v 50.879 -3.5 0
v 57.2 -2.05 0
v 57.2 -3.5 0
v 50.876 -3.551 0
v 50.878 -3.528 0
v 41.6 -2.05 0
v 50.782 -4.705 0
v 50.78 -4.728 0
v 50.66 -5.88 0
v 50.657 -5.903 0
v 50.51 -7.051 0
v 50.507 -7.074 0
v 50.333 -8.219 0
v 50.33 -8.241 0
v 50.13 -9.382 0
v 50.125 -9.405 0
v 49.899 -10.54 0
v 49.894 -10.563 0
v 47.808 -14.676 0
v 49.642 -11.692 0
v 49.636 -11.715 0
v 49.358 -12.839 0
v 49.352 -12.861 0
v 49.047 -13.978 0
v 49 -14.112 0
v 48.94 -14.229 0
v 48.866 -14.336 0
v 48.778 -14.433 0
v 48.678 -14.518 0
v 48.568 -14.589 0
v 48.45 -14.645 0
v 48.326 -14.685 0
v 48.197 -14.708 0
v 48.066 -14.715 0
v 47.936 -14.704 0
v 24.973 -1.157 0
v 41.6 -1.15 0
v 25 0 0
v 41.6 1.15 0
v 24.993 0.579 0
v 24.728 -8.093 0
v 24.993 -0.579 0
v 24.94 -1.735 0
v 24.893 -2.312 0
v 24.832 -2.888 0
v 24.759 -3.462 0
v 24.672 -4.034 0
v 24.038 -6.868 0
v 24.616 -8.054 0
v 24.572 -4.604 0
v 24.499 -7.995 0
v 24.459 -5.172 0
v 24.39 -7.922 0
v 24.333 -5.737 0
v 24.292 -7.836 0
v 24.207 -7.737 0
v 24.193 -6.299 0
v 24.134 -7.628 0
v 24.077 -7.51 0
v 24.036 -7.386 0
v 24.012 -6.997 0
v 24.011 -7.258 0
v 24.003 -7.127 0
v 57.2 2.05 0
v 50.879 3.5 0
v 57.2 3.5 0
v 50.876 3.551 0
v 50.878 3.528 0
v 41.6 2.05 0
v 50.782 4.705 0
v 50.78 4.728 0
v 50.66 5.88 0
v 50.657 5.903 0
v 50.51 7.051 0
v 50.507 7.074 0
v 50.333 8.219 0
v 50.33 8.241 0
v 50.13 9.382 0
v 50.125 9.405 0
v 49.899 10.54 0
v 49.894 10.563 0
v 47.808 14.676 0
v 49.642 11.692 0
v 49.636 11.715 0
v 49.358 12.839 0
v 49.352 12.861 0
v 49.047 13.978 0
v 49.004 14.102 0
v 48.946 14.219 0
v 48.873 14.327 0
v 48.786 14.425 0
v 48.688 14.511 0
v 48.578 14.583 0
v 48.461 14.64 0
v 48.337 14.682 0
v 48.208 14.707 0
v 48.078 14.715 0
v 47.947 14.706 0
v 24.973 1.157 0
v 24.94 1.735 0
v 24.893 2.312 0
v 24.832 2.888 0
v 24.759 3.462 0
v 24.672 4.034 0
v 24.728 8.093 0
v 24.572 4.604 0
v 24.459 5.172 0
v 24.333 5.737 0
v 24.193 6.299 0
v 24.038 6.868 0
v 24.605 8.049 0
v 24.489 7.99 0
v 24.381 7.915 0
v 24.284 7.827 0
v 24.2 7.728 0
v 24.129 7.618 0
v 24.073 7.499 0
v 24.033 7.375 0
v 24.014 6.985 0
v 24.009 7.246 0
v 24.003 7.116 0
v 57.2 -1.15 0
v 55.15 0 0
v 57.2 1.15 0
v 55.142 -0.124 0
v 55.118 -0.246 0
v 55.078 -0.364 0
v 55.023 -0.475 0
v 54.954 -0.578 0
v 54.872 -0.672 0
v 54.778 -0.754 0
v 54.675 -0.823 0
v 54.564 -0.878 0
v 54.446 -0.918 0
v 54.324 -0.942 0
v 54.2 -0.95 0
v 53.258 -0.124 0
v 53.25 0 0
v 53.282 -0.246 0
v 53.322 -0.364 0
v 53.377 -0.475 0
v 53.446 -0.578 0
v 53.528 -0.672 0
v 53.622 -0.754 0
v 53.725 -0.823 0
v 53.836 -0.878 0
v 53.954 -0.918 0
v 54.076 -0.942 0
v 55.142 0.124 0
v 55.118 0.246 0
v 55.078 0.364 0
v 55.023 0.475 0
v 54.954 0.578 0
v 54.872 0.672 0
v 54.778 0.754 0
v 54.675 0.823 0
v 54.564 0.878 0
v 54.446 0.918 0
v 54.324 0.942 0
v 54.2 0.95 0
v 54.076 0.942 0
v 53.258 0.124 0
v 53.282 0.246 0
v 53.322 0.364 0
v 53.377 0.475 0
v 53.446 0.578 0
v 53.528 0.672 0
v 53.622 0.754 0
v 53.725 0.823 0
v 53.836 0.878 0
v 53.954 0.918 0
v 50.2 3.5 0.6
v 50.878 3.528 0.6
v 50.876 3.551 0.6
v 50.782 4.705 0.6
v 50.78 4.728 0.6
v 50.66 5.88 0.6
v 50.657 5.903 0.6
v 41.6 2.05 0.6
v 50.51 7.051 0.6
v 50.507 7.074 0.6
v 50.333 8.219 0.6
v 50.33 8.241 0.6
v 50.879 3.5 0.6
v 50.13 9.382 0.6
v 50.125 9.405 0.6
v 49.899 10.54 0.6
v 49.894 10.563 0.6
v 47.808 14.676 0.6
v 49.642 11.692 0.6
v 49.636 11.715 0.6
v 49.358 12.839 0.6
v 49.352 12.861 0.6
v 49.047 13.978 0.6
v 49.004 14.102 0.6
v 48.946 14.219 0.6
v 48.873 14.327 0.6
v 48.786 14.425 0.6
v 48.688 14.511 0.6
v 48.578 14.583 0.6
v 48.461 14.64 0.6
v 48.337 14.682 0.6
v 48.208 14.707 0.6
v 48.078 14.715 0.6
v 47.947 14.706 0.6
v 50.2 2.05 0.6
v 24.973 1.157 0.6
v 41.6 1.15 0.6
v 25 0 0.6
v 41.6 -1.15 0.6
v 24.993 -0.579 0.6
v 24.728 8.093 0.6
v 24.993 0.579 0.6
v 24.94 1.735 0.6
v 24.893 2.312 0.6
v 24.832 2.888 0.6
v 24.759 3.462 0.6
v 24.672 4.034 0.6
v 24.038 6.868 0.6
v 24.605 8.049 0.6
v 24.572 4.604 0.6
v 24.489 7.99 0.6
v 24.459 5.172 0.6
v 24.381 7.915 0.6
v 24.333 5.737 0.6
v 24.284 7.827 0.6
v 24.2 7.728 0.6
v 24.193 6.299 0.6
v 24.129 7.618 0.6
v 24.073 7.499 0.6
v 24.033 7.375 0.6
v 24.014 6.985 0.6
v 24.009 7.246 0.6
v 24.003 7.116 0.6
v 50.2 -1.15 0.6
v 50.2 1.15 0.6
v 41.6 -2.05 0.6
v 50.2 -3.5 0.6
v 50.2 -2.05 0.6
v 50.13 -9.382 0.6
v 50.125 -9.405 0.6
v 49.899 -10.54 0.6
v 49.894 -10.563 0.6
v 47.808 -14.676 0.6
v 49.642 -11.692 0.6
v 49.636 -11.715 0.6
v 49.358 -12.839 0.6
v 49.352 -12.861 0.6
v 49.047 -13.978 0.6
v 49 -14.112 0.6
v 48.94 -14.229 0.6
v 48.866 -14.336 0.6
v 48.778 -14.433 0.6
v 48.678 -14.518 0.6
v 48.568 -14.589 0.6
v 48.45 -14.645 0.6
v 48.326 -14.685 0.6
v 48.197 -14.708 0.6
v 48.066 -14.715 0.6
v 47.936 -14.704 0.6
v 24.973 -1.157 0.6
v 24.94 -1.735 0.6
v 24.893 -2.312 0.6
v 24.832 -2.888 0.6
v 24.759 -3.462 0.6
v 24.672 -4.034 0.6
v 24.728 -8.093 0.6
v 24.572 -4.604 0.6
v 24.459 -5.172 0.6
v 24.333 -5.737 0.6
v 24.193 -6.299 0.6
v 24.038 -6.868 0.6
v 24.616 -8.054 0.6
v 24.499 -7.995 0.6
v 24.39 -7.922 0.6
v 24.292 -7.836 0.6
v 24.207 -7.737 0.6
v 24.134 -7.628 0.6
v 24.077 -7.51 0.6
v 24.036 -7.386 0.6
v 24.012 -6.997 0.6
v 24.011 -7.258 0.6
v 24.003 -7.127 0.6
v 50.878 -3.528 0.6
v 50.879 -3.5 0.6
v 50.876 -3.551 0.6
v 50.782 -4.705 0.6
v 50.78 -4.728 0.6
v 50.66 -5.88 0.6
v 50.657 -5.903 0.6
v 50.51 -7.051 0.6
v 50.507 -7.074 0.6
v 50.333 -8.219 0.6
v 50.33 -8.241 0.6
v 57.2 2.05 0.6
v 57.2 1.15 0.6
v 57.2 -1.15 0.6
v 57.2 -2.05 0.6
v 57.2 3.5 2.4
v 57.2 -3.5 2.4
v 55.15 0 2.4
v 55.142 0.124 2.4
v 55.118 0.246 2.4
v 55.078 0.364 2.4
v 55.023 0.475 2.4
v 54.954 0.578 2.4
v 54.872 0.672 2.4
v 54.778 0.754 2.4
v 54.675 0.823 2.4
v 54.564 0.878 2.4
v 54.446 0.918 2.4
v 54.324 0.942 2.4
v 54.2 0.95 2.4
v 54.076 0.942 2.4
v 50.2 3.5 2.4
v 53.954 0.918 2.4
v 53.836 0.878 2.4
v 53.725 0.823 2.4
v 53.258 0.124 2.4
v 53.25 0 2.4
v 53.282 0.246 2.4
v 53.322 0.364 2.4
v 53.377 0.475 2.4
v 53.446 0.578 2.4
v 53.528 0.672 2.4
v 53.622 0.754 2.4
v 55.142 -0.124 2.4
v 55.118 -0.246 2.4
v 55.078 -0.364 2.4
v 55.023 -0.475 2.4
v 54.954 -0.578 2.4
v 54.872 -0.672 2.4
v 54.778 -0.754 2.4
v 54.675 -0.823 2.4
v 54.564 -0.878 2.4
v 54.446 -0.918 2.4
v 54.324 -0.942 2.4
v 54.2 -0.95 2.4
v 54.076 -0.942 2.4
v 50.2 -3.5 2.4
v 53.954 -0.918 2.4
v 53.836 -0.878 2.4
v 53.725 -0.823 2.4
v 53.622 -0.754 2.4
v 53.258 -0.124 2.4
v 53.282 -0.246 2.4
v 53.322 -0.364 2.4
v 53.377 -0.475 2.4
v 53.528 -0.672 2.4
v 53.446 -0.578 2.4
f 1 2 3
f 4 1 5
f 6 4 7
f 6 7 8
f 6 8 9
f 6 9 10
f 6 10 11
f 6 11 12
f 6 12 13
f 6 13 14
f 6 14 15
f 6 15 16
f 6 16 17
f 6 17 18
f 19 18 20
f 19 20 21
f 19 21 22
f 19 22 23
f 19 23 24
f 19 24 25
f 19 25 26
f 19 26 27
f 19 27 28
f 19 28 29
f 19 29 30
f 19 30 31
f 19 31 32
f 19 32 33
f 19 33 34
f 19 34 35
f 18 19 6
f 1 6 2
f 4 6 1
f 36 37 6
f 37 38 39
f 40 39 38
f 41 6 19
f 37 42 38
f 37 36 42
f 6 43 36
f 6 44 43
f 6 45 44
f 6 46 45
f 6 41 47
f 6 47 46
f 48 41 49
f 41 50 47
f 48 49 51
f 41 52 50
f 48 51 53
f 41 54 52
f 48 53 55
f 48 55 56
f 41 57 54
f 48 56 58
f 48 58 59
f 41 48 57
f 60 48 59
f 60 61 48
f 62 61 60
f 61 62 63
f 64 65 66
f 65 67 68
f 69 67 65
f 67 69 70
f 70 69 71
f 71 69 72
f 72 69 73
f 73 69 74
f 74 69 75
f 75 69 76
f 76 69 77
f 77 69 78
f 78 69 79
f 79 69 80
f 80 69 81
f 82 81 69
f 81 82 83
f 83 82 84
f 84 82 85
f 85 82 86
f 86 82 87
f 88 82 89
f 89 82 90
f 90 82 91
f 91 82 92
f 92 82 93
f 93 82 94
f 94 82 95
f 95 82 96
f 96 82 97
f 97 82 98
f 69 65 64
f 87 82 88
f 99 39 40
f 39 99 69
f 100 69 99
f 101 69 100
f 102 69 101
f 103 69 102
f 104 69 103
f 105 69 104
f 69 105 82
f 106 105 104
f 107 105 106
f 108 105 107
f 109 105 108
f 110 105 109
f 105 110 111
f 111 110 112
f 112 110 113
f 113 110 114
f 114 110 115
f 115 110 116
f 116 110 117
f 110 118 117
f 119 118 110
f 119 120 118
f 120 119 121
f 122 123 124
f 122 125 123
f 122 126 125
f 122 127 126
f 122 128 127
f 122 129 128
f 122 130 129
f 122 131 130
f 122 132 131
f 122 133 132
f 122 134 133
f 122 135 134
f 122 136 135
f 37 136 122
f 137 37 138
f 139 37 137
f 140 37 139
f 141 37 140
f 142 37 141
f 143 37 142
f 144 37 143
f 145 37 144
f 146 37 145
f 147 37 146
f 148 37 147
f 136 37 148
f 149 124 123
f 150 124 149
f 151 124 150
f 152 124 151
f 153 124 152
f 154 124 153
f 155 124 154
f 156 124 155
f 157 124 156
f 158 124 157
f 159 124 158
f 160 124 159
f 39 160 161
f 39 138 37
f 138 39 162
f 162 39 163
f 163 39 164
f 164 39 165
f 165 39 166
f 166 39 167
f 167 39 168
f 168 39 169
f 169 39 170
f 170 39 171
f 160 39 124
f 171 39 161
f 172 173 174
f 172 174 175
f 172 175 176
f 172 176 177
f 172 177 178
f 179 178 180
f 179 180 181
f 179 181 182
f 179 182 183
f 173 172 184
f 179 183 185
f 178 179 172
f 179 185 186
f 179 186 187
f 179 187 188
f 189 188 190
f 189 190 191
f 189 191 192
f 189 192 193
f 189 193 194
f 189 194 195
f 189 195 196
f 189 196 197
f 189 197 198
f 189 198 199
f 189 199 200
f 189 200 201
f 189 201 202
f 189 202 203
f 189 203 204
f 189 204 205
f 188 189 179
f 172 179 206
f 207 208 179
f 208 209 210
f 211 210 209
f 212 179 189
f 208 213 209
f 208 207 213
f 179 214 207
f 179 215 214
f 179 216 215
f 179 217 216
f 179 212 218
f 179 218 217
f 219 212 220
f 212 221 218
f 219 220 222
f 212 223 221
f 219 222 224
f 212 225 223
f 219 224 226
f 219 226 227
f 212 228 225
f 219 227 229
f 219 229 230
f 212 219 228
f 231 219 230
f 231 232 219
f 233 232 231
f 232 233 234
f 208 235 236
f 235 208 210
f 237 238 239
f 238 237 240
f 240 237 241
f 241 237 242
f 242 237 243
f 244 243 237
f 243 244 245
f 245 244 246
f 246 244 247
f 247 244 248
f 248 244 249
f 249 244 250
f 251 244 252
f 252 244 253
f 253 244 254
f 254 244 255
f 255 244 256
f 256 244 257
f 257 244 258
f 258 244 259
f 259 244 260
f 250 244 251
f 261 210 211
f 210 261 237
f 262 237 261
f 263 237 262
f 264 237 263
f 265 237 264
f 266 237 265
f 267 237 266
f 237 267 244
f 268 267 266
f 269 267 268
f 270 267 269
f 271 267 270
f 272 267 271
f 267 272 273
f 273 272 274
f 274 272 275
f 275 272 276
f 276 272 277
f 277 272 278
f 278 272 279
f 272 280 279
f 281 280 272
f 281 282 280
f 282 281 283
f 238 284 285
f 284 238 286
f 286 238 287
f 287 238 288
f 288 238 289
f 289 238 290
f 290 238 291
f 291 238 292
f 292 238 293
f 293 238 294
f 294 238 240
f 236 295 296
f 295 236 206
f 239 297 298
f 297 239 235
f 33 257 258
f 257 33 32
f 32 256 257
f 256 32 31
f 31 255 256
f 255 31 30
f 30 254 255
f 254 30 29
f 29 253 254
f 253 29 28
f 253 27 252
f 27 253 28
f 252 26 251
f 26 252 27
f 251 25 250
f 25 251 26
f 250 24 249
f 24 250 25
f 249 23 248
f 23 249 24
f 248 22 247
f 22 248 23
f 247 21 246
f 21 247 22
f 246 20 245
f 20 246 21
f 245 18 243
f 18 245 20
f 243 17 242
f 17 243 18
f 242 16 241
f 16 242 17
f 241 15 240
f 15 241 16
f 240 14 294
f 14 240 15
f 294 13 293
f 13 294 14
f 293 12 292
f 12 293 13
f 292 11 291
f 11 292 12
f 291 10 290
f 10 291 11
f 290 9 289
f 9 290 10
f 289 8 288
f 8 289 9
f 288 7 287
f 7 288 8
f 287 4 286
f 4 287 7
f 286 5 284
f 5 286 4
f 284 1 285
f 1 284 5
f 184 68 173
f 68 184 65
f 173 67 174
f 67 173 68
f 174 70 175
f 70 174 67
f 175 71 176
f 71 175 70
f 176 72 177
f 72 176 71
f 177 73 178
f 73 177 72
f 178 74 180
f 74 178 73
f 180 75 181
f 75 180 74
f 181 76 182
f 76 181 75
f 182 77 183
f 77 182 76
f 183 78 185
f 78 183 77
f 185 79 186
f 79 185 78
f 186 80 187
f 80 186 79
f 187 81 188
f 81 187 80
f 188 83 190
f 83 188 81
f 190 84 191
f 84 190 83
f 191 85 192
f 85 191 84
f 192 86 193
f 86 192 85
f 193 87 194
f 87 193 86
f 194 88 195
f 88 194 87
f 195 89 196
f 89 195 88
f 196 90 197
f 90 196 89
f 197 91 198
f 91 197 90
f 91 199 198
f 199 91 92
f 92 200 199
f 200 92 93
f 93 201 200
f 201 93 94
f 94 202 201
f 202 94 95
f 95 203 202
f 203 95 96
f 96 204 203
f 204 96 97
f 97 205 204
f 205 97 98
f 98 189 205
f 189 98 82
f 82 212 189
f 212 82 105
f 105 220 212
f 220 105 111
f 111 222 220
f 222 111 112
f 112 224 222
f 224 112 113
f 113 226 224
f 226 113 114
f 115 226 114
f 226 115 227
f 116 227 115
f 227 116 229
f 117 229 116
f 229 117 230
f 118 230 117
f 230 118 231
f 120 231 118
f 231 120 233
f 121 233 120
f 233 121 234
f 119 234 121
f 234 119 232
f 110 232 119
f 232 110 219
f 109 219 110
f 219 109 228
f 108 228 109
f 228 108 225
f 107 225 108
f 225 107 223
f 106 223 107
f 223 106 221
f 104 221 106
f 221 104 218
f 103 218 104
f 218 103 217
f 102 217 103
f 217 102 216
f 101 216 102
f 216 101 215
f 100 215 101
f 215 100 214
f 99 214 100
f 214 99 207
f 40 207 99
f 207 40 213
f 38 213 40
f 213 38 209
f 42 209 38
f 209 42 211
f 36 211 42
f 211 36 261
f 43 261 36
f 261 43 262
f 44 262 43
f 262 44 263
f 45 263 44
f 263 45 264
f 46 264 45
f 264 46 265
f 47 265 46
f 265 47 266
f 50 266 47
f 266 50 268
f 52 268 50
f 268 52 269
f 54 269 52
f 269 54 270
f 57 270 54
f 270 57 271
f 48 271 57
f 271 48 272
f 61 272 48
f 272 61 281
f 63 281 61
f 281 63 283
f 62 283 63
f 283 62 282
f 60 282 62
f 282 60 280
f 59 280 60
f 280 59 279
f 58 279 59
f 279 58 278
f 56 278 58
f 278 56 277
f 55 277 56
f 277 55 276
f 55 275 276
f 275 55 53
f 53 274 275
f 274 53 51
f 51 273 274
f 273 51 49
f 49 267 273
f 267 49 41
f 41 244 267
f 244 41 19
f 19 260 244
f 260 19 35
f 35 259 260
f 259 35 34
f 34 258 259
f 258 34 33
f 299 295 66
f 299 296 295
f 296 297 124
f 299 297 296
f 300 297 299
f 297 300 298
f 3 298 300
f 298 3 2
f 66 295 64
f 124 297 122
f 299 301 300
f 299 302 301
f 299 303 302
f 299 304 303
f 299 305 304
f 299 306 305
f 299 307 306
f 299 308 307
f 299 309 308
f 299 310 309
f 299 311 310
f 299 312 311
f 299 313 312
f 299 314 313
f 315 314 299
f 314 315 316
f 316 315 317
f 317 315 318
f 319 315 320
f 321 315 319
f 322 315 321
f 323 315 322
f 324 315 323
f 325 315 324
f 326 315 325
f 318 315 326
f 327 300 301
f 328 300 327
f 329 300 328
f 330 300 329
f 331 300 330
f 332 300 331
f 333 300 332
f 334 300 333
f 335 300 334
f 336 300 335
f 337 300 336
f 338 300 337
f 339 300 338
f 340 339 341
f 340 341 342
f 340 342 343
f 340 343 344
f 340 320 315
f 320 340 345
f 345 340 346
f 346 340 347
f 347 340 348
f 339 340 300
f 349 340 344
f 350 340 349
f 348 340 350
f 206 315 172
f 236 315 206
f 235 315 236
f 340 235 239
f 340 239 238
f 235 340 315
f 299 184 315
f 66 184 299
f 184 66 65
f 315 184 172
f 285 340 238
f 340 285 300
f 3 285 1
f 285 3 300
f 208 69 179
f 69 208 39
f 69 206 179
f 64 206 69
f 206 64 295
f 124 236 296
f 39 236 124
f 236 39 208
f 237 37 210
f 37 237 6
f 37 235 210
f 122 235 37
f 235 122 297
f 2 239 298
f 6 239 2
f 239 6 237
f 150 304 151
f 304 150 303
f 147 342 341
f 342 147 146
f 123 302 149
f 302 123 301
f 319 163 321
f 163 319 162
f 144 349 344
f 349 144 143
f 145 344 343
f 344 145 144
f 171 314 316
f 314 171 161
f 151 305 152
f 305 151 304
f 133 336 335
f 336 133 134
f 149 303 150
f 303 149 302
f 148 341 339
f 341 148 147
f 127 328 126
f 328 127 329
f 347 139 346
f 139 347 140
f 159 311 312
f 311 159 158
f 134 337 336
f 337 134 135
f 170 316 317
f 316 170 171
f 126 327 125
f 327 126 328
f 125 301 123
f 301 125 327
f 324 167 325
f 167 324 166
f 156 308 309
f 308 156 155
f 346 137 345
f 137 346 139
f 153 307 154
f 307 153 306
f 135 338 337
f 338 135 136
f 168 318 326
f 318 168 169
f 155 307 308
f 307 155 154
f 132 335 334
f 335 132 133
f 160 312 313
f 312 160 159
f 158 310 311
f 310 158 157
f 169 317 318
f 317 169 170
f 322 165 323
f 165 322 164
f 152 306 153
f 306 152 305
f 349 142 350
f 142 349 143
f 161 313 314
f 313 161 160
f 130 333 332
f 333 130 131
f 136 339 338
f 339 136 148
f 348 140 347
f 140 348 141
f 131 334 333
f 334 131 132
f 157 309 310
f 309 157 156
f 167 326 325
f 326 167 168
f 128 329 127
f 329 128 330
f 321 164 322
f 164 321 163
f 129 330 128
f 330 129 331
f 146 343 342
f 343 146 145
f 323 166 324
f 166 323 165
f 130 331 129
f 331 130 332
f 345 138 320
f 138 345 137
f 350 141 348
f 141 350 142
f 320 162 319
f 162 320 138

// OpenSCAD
// file: parameters.scad
// =============================================================================
// Gen-BE — nightly 2026-10-03 (physics_scorer, honest magpylib watts)
// Clocking 0 deg (magnets N facing S) + D-flat keyed bore + index notch + flip-symmetric braces/bolts.
// Windable 2-piece bobbin; turns = physics_scorer turns_fit; copper only between flanges.
// former_web = 3.60 mm (taller copper vs Gen-BA 2.46) — gap grows with web (honest Bz tradeoff).
// Steel back-iron: two buyable mild-steel discs behind each rotor (score with --back-iron).
// =============================================================================
topology            = "dual_rotor";

// --- Wire / winding (physics_scorer winding-fit) -------------------------------
wire_awg            = 26;
wire_od             = 0.45;     // insulated OD mm (bare 0.405)
fill_realistic      = 0.60;     // insulated-wire area / window, hand-wound layered
turns               = 107;       // = physics_scorer turns_fit (do NOT raise)
coil_former_type    = "bobbin";
coil_core_inset     = 7.90;     // radial copper build: hub = copper boundary inset by this
wind_build_axial    = 0.0;      // nothing proud of the flanges
wind_build_radial   = 0.0;

// --- Bobbin (base + lid) ---------------------------------------------------------
coil_id_r           = 26.00;    // copper boundary sector (over the magnet track)
coil_od_r           = 50.00;
span_deg            = 31.84;    // = pitch - 2*asin((wall+0.85)/coil_id_r) -> >=1.2 mm stator web
former_web          = 3.60;     // copper height between flanges
flange_t            = 0.60;
wall                = 1.00;     // flange lip beyond copper
former_bare_h       = former_web + 2 * flange_t;
coil_envelope_h     = former_bare_h + 2 * wind_build_axial;
tab_w               = 7.0;
tab_len             = 7.0;
tab_h               = former_bare_h / 2;
pin_d               = 1.9;      // 1.75 mm filament locating pin
coil_mount_r        = coil_od_r + 0.2 + 4.0;
lead_y              = 1.6;
lead_slot_w         = 0.9;
lead_groove_d       = 0.6;

// --- Gap -------------------------------------------------------------------------
run_clear           = 0.50;     // rotor face -> flange
gap_spacer_h        = run_clear + wind_build_axial;
m2m                 = coil_envelope_h + 2 * run_clear;

// --- Stator ----------------------------------------------------------------------
coil_stations       = 9;
bay_clear           = 0.25;
stator_thick        = former_bare_h;                        // bobbins flush both faces
stator_od           = 158.0;
shaft_clear_stator  = 14.0;     // stator is static; shaft only

// --- Rotor(s) --------------------------------------------------------------------
magnet_Br           = 1.43;     // N52
halbach_magnetisation = "diametric"; // O5x5 assist magnets MUST be DIAMETRICALLY magnetised (tangential)
rotor_b_same_axis   = true;     // same-index magnets share one axis: N faces S across the gap
large_pocket_d      = 20.3;
small_pocket_d      = 5.3;
pocket_h            = 5.2;
large_n             = 8;
R_large             = 38.0;
R_small_inner       = 24.0;
R_small_mid         = 38.0;
R_small_outer       = 55.0;
carrier_od          = 156.0;
carrier_thick       = 7.5;
hub_h               = 10.0;
hub_od              = 30.0;
rotor_b_offset_deg  = 0.0;      // CLOCKING: magnets directly opposite
shaft_key           = "dflat";
dflat_depth         = 0.5;      // 8 mm shaft with 0.5 mm flat (7.5 across flat)
index_notch_d       = 3.0;

// --- Modular MAX interface (Gen-E family) -----------------------------------------
shaft_bore          = 8.35;
dflat_x             = 4.0 - dflat_depth + (shaft_bore - 8.0) / 2;
bearing_d           = 21.85;
bearing_h           = 7.2;
m3_clear            = 3.5;
bolt_r_inner        = 30.0;
bolt_n_inner        = 4;
bolt_inner_angles   = [22.5, -22.5, 157.5, 202.5];  // between poles, flip-symmetric
flange_bolt_r       = 72.0;
flange_bolt_n       = 6;
brace_r             = 68.0;
brace_d             = 4.3;
brace_n             = 4;
brace_angles        = [45, 135, 225, 315];          // flip-symmetric

spacer_pad_od       = 14.0;
spacer_pad_id       = m3_clear;
endbell_od          = 158.0;
endbell_thick       = 8.0;
endbell_shaft_clear = 10.0;
plate_max_mm        = 410;

$fn = 64;
// main file
// Gen-BE — bobbin LID (top flange + locating tab). Print x9, flange face DOWN on the bed.
// CA-glue onto the hub top BEFORE winding. Tab is the lap joint into the stator tab pocket; 1.75 mm
// filament pin through pin hole + stator ledge, trim flush. Lead slots carry both leads flush.
include <parameters.scad>;
$fn = 48;
module sector_2d(r_in, r_out, ang) {
    polygon([
        for (a = [-ang/2 : ang/24 : ang/2]) [r_in*cos(a), r_in*sin(a)],
        for (a = [ang/2 : -ang/24 : -ang/2]) [r_out*cos(a), r_out*sin(a)]
    ]);
}
module footprint_2d() { offset(r=wall) sector_2d(coil_id_r, coil_od_r, span_deg); }
module hub_2d()       { offset(delta=-coil_core_inset) sector_2d(coil_id_r, coil_od_r, span_deg); }

difference() {
    union() {
        linear_extrude(flange_t) footprint_2d();
        // tab block (outside the copper, r > coil_od_r) reaches down to former mid-height
        translate([coil_od_r + 0.2, -tab_w/2, 0]) cube([tab_len, tab_w, tab_h]);
    }
    translate([coil_mount_r, 0, -0.1]) cylinder(d=pin_d, h=tab_h + 1);
    // two lead grooves on the outer (rotor-facing) side, depth lead_groove_d
    for (y = [lead_y, -lead_y])
        translate([coil_od_r - coil_core_inset - 0.5, y - lead_slot_w/2, -0.1])
            cube([coil_core_inset + tab_len + 2, lead_slot_w, lead_groove_d + 0.1]);
}
